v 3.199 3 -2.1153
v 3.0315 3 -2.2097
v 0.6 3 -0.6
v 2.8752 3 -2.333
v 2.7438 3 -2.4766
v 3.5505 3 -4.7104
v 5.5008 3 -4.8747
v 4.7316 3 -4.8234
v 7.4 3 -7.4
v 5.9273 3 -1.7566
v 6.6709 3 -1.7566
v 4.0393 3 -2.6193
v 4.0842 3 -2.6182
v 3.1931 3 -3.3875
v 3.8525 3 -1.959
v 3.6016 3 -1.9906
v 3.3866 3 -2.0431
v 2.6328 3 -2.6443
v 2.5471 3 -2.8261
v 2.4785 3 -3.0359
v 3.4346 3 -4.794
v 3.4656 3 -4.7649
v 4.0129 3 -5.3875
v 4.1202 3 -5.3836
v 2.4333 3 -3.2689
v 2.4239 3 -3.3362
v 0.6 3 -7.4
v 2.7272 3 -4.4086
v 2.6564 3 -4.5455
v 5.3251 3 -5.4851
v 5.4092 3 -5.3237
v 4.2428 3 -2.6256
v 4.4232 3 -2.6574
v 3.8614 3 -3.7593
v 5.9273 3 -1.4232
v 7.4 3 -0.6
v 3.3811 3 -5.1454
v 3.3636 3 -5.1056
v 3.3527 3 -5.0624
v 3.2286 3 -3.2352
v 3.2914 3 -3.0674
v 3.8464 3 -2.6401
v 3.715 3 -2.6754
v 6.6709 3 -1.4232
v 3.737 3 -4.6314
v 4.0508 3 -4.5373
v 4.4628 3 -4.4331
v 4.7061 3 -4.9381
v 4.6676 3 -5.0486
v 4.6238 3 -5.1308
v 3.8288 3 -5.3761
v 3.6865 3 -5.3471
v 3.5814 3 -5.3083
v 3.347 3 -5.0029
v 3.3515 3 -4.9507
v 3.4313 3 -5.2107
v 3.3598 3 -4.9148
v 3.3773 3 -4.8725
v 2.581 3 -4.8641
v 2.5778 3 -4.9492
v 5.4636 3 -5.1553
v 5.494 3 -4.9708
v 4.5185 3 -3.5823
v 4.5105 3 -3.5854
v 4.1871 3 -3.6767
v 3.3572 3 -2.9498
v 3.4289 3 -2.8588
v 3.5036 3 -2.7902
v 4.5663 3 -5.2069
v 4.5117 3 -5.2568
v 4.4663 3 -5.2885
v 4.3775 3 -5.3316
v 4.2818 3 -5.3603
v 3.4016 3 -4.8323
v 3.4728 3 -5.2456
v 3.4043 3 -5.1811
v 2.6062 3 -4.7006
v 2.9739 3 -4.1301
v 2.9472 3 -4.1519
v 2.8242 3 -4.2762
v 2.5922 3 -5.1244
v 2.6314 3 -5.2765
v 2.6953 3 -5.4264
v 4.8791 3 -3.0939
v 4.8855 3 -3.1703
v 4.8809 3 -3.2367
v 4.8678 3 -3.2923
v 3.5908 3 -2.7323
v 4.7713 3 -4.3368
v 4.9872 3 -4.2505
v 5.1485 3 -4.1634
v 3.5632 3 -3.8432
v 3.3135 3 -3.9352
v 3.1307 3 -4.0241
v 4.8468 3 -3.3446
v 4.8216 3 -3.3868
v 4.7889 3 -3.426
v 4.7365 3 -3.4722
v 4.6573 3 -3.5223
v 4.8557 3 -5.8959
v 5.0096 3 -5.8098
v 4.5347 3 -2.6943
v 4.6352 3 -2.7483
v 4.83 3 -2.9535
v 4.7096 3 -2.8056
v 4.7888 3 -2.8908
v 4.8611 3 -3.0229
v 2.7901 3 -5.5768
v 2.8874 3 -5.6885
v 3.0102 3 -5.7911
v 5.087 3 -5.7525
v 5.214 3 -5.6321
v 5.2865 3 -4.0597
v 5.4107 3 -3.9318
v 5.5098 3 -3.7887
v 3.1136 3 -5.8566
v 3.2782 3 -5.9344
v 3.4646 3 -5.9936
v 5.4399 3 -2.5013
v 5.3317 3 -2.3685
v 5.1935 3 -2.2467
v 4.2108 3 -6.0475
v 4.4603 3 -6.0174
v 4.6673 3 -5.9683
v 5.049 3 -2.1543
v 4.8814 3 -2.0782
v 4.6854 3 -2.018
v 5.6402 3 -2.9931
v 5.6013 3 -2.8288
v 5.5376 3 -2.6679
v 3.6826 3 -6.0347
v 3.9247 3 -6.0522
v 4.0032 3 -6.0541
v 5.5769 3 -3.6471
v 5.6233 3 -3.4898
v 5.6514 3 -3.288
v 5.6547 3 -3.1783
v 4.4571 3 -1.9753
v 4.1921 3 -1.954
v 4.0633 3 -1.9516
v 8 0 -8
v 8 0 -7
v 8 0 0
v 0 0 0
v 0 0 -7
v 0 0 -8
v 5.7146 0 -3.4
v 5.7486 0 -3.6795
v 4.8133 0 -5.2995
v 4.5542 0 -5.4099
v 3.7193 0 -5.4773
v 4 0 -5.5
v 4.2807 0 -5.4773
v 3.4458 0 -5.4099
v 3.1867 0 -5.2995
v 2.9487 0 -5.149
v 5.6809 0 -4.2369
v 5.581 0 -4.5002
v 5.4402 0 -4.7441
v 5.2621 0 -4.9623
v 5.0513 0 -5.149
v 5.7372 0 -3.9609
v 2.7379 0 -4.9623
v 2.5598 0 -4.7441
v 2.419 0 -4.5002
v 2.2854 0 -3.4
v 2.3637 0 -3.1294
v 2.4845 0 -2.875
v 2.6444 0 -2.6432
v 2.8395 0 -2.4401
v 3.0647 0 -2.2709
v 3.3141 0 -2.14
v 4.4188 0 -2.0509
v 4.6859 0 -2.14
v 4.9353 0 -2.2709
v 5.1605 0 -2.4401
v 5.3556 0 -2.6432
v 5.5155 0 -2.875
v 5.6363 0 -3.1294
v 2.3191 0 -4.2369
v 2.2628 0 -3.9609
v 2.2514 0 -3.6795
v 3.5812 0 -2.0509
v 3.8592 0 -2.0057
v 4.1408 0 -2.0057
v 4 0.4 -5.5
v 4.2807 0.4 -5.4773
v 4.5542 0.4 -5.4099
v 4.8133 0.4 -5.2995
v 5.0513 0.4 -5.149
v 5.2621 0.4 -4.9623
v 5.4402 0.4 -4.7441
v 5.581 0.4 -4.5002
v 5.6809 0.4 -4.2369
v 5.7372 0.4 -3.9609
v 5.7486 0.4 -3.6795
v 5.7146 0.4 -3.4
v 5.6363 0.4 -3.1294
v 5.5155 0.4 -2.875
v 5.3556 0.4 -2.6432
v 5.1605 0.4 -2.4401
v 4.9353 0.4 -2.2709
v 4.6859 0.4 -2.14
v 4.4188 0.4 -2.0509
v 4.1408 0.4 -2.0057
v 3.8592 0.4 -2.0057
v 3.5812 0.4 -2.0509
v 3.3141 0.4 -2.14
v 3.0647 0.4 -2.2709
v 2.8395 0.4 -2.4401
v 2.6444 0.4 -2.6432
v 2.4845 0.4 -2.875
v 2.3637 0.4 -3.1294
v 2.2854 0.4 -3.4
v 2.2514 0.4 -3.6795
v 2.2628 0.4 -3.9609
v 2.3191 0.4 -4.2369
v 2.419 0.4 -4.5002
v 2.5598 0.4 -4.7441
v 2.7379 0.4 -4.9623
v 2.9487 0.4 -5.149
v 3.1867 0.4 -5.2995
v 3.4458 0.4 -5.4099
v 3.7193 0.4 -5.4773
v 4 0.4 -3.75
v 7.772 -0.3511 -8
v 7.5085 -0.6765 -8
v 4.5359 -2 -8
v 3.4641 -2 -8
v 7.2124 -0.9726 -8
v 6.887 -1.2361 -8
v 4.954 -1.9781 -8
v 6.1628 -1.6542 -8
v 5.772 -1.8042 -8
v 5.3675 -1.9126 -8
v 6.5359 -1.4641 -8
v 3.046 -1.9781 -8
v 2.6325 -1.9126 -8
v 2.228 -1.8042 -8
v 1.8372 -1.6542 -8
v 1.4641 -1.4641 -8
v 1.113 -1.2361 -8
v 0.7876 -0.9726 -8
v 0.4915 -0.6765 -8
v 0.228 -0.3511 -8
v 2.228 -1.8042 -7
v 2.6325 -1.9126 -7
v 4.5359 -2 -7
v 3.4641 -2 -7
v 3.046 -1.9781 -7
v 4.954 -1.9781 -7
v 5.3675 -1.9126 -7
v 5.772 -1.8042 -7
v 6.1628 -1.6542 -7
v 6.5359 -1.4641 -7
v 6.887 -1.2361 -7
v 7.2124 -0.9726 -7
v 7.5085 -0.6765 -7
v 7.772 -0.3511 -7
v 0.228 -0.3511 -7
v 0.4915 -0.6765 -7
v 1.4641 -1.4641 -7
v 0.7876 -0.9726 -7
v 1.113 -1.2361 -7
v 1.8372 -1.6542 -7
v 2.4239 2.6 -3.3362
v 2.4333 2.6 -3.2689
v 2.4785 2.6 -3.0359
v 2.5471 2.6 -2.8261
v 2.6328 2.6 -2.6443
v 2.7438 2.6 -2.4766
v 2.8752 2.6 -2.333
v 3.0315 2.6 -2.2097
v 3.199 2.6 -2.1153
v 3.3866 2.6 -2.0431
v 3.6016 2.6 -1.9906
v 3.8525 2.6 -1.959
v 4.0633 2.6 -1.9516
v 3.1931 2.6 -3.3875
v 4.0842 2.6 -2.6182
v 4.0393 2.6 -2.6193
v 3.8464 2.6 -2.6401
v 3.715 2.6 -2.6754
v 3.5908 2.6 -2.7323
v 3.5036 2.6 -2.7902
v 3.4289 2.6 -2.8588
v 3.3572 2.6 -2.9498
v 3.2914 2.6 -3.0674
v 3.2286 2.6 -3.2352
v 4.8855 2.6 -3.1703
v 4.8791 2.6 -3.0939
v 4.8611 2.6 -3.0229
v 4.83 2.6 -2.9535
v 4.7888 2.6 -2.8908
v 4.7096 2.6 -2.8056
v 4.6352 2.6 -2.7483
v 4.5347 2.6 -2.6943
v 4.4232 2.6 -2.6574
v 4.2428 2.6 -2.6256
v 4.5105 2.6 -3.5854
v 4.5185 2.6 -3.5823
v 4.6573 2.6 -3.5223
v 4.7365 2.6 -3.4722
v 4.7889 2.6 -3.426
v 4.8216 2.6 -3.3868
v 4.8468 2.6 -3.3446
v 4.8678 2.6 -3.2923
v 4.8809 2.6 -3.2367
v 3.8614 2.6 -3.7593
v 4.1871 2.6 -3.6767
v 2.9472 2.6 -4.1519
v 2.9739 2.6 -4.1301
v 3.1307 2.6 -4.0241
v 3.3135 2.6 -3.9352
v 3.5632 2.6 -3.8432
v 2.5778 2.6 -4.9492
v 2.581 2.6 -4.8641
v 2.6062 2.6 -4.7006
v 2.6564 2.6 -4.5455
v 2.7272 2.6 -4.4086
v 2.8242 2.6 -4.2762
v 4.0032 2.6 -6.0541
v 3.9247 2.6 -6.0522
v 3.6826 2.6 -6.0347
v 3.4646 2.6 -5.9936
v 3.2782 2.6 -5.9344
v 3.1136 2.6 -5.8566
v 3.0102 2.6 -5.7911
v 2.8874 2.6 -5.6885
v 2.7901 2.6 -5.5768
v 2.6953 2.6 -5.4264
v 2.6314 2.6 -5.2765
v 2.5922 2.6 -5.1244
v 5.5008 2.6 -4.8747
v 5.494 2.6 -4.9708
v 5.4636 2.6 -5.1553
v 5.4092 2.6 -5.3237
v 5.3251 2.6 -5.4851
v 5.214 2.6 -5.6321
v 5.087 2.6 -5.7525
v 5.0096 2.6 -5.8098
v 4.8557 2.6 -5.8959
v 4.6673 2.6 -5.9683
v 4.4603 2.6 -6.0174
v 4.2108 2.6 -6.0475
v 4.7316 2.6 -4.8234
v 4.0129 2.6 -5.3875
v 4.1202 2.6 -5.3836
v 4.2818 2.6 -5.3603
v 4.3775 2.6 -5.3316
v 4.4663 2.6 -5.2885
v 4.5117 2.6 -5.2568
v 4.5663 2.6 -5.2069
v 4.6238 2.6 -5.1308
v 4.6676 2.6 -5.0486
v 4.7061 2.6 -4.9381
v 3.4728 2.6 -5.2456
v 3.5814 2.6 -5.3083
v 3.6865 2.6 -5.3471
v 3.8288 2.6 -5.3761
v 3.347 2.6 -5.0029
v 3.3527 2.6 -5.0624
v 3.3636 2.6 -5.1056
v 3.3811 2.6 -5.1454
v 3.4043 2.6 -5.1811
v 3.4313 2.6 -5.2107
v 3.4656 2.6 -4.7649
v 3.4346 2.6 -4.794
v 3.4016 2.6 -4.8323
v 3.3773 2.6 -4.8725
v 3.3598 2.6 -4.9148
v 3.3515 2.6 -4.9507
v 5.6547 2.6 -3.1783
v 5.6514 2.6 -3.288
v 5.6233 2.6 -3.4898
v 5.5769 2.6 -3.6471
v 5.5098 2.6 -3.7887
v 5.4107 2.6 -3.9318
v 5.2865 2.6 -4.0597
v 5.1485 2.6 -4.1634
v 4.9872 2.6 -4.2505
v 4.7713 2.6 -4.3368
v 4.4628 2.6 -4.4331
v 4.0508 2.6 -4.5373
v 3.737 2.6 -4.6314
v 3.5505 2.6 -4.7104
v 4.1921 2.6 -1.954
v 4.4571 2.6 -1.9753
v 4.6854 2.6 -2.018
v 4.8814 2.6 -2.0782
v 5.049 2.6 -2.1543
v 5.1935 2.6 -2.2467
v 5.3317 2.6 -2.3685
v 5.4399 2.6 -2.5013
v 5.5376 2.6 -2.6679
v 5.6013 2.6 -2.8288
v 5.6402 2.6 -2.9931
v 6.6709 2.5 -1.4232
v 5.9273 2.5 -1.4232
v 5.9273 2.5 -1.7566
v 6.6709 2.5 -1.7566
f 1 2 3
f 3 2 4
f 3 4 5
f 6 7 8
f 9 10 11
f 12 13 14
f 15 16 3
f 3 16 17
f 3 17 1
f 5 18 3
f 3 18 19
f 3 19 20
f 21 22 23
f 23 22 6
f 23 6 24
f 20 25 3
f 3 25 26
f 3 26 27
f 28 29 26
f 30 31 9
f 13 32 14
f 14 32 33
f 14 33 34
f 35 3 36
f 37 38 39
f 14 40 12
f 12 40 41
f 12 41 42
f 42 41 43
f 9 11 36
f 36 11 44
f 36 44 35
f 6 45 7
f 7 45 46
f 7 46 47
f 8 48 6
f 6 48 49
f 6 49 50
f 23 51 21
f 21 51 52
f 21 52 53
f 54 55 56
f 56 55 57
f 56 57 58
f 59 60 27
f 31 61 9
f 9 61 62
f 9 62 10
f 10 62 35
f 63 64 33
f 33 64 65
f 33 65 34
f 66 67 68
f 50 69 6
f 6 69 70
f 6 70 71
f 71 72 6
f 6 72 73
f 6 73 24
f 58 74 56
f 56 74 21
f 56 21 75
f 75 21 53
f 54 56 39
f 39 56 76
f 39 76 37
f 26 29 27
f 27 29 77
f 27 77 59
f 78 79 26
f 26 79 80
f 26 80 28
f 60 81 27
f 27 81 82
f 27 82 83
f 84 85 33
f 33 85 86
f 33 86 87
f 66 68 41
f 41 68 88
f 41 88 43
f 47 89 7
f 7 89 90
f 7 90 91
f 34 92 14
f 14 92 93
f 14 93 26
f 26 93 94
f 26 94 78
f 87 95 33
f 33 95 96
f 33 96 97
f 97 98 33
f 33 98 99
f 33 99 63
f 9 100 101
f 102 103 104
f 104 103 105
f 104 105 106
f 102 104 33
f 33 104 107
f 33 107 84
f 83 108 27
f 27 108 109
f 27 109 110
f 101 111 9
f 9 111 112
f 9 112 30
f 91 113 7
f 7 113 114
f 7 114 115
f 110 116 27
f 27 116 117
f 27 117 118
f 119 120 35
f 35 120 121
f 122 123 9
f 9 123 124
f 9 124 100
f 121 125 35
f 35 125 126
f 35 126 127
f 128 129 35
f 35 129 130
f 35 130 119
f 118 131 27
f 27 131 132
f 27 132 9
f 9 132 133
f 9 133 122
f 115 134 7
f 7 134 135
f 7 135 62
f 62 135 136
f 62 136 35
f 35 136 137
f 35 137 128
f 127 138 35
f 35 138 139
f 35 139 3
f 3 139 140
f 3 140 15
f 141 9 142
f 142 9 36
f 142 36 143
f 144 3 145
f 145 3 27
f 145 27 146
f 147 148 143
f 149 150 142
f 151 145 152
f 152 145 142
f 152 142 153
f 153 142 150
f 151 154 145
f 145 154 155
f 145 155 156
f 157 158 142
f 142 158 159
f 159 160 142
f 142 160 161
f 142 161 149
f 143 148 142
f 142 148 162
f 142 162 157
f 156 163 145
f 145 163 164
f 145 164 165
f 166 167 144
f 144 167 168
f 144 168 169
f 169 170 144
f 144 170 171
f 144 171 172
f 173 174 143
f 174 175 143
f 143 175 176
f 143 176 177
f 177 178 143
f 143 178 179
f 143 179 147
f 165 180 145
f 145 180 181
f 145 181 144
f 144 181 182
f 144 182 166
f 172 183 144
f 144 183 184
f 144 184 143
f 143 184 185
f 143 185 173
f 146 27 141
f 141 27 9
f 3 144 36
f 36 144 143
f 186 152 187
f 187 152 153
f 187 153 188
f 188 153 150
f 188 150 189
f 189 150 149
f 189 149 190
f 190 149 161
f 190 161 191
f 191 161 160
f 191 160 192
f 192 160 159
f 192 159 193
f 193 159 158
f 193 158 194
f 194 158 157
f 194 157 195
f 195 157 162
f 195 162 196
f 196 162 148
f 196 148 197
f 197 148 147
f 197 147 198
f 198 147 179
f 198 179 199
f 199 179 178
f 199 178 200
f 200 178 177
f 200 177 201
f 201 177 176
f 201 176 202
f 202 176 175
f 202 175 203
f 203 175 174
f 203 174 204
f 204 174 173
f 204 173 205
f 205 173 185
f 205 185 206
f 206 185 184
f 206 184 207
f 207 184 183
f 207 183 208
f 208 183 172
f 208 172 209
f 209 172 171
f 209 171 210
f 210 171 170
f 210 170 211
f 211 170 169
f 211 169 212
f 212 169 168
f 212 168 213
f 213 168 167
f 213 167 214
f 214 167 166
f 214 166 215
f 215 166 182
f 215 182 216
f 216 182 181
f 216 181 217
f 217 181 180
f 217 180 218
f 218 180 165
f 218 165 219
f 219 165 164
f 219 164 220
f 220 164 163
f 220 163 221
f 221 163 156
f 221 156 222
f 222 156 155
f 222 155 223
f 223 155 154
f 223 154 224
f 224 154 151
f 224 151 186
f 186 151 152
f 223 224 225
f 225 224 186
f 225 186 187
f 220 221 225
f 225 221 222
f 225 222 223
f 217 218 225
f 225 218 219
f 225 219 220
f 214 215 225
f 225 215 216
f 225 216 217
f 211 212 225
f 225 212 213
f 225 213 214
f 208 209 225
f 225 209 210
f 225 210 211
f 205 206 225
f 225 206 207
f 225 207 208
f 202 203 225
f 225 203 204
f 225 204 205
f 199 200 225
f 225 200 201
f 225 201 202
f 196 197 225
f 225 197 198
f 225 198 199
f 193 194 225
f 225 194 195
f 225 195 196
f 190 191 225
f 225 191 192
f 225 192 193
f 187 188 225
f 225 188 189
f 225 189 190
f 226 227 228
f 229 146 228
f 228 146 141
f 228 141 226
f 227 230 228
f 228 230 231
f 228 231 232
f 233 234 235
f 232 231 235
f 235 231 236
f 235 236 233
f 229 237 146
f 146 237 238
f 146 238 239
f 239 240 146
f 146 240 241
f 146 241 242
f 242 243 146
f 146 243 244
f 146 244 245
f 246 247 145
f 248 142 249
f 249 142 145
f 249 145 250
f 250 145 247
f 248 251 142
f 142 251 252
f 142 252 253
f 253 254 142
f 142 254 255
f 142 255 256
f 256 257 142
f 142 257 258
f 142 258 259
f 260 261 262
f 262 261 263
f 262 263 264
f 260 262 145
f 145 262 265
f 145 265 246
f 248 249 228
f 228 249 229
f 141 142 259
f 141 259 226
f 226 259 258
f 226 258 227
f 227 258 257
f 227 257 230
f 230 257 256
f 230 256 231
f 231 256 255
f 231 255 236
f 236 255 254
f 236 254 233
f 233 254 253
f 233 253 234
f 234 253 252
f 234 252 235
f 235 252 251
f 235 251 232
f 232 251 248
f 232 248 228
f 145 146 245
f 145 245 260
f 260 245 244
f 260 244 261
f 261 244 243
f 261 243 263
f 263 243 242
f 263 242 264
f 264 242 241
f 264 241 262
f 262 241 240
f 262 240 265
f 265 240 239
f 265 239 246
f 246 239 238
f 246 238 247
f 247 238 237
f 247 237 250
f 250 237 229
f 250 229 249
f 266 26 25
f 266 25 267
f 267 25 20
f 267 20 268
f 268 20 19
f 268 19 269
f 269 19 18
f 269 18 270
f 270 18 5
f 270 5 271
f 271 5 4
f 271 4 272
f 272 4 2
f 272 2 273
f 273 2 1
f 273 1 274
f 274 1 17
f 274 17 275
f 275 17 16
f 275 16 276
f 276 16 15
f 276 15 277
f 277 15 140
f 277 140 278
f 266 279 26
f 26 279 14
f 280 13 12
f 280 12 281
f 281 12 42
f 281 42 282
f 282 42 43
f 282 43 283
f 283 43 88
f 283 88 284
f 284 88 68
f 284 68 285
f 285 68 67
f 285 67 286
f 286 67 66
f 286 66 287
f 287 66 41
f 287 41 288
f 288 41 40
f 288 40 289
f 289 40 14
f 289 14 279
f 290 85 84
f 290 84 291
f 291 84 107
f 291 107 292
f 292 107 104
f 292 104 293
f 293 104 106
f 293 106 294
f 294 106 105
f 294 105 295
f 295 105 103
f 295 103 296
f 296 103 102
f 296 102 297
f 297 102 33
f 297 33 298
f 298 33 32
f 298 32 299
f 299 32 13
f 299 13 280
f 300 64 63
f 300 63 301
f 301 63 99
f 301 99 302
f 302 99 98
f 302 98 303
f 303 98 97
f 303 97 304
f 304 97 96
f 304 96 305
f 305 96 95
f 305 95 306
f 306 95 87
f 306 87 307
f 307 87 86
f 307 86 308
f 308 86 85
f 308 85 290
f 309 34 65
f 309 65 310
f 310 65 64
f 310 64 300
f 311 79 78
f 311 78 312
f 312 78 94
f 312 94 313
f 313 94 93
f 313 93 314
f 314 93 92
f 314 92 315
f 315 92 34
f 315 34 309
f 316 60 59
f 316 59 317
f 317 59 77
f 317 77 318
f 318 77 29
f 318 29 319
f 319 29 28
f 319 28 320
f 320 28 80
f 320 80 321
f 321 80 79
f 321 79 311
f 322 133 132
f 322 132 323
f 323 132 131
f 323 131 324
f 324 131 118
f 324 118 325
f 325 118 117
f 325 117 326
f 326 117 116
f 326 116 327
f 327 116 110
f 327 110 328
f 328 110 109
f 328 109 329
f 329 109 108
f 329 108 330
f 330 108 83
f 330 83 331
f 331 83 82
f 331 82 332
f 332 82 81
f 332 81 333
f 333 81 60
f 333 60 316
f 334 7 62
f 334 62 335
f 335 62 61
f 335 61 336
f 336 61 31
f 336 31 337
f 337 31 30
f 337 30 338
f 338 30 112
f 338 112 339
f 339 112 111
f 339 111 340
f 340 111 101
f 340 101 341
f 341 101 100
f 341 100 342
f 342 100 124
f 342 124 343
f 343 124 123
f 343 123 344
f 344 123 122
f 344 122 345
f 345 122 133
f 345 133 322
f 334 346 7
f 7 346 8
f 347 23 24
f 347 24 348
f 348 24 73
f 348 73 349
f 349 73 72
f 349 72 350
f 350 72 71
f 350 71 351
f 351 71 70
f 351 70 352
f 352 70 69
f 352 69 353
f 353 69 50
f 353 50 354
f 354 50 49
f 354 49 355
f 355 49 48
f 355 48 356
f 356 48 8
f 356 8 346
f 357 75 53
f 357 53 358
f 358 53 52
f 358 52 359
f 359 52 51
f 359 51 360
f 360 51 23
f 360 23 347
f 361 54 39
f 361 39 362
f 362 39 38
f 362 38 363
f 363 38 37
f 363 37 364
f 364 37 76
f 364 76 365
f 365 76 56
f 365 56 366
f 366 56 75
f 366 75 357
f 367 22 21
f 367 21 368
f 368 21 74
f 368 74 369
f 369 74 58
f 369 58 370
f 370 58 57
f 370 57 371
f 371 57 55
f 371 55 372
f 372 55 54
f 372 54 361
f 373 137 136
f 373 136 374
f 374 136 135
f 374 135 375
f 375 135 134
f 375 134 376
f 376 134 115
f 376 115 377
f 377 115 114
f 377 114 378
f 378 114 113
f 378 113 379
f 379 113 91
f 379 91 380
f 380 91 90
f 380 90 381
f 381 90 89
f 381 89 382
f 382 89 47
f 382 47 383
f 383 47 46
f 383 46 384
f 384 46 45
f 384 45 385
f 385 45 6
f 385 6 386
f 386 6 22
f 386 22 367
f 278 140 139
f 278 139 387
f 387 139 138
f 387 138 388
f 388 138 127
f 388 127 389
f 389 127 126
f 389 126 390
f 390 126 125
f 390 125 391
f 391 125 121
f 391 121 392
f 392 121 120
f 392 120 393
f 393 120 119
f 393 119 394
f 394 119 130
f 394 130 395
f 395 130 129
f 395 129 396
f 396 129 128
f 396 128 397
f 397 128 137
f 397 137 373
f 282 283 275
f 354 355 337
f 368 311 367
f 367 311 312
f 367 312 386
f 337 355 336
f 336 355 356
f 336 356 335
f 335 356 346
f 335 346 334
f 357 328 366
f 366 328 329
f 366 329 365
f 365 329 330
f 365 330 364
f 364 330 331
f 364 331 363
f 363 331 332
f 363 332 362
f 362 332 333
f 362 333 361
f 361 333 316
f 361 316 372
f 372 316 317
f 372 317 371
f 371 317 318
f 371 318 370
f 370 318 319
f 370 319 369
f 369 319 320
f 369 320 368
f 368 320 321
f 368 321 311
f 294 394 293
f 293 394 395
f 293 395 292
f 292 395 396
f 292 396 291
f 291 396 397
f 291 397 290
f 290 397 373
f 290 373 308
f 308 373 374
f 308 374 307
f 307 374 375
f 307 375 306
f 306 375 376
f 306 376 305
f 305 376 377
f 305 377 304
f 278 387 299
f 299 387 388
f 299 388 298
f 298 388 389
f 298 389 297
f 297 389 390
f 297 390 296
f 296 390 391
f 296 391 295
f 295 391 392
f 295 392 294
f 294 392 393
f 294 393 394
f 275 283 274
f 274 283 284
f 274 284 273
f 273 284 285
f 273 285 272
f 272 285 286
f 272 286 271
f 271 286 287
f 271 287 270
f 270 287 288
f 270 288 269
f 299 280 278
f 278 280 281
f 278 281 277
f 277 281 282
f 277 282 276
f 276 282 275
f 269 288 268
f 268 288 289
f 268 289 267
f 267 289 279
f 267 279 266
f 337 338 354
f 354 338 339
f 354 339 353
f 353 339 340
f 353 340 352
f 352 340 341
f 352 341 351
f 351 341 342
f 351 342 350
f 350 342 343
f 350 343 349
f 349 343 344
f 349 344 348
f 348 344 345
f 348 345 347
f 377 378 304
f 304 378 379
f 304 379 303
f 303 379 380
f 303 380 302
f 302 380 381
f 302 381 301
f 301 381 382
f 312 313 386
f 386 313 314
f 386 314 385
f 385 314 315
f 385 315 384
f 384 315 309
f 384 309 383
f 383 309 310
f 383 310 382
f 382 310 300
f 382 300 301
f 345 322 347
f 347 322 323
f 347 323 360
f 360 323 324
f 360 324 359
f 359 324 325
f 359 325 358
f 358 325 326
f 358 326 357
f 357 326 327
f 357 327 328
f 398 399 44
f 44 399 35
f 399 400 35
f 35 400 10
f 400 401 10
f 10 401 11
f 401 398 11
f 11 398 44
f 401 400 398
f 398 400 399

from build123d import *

# Parameters (mm, degrees)
SKETCH1_W               = 8
SKETCH1_H               = 8
BOSS_EXTRUDE1_DEPTH     = 3
CUT_EXTRUDE1_DEPTH      = 12.704699911
CUT_EXTRUDE1_DEPTH_BACK = 12.704699911
CUT_EXTRUDE2_DEPTH      = 11
SKETCH4_R               = 1.75
CUT_EXTRUDE3_DEPTH      = 0.4
SKETCH5_W               = 8
SKETCH5_H               = 1
BOSS_EXTRUDE2_DEPTH     = 2
FILLET1_R               = 4
CUT_EXTRUDE4_DEPTH      = 0.4
SKETCH7_W               = 0.743589743
SKETCH7_H               = 0.333333333
CUT_EXTRUDE5_DEPTH      = 0.5


with BuildPart() as part:
    # Sketch1 → Boss-Extrude1 (new body)
    with BuildSketch(Plane(origin=(0, 0, 0), x_dir=(1, 0, 0), z_dir=(0, 1, 0))):
        with Locations((4, 4)):
            Rectangle(SKETCH1_W, SKETCH1_H)
    extrude(amount=BOSS_EXTRUDE1_DEPTH)

    # Sketch2 → Cut-Extrude1 (cut, two sides: drawn at the far end of the back side and taken through both)
    with BuildSketch(Plane.XY.offset(-CUT_EXTRUDE1_DEPTH_BACK)):
        Polygon((0, 0), (0.6, 3), (0, 3), align=None)
        Polygon((8, 0), (7.4, 3), (8, 3), align=None)
    extrude(amount=CUT_EXTRUDE1_DEPTH + CUT_EXTRUDE1_DEPTH_BACK, mode=Mode.SUBTRACT)

    # Sketch3 → Cut-Extrude2 (cut)
    with BuildSketch(Plane(origin=(0, 0, 0), x_dir=(0, 0, -1), z_dir=(1, 0, 0))):
        Polygon((0, 0), (0.6, 3), (0, 3), align=None)
        Polygon((8, 3), (7.4, 3), (8, 0), align=None)
    extrude(amount=CUT_EXTRUDE2_DEPTH, mode=Mode.SUBTRACT)

    # Sketch4 → Cut-Extrude3 (cut)
    with BuildSketch(Plane.XZ):
        with Locations(Location((4, -3.75, 0), (0, 0, 270))):
            Circle(SKETCH4_R)
    extrude(amount=-CUT_EXTRUDE3_DEPTH, mode=Mode.SUBTRACT)

    # Sketch5 → Boss-Extrude2 (add)
    with BuildSketch(Plane.XZ):
        with Locations((4, -7.5)):
            Rectangle(SKETCH5_W, SKETCH5_H)
    extrude(amount=BOSS_EXTRUDE2_DEPTH)

    # Fillet1
    # the kernel refuses this fillet: 4 mm, written as the material it takes off along each edge
    with BuildSketch(Plane(origin=(8, -2, -16.660254038), x_dir=(0, 1, 0), z_dir=(0, 0, 1)), Plane(origin=(0, -2, 1.660254038), x_dir=(0, 1, 0), z_dir=(0, 0, -1))) as fillet1_piece_1:
        with BuildLine():
            CenterArc((4, 3.464101615), FILLET1_R, 180, 60)
            Line((0, 3.464101615), (-0.08, 3.464101615))
            Line((-0.08, 3.464101615), (-0.08, 0))
            Line((-0.08, 0), (0, -0.08))
            ThreePointArc((0, -0.08), (1, -0.08), (1.96, -0.069282032))
            Line((1.96, -0.069282032), (2, 0))
        make_face()
    extrude(amount=18.320508076, mode=Mode.SUBTRACT)

    # Sketch6 → Cut-Extrude4 (cut)
    with BuildSketch(Plane(origin=(0, 3, 0), x_dir=(1, 0, 0), z_dir=(0, 1, 0))):
        with BuildLine():
            Line((2.423916505, 3.336189685), (3.193147274, 3.387471736))
            add(Edge.make_bspline(
                [(3.193147274, 3.387471736), (3.199275518, 3.35528983), (3.211179242, 3.292778523), (3.237627081, 3.203691377), (3.266738832, 3.12063689), (3.30152897, 3.044505684), (3.339615284, 2.973890515), (3.38412658, 2.910803039), (3.431957638, 2.853229033), (3.485476185, 2.803236311), (3.543783948, 2.759451994), (3.607171876, 2.722111271), (3.674953108, 2.6897922), (3.747293374, 2.663178469), (3.824938253, 2.64331119), (3.907211345, 2.629176798), (3.994230643, 2.620125524), (4.053701404, 2.618879435), (4.084172915, 2.618240967)],
                knots=[0, 0, 0, 0, 1.204560339, 2.339781841, 3.415289417, 4.440034832, 5.416475564, 6.362424008, 7.275913008, 8.16578645, 9.05021719, 9.95355393, 10.867835453, 11.809845306, 12.784702352, 13.812224031, 14.87903166, 16, 16, 16, 16], degree=3))
            add(Edge.make_bspline(
                [(4.084172915, 2.618240967), (4.116246108, 2.618590883), (4.178630121, 2.619271489), (4.269031453, 2.627715), (4.353560804, 2.639811238), (4.431471751, 2.6589593), (4.504219207, 2.680373377), (4.569996427, 2.709670116), (4.629867843, 2.743459668), (4.683679212, 2.781802056), (4.730640445, 2.824326515), (4.771724475, 2.86872067), (4.807505951, 2.914025405), (4.835668504, 2.962251146), (4.858460082, 3.011447443), (4.873523718, 3.063081907), (4.883700097, 3.1159689), (4.884867031, 3.152113555), (4.885454967, 3.1703243)],
                knots=[0, 0, 0, 0, 1.417779877, 2.757654889, 4.012140507, 5.189587551, 6.302846416, 7.360586765, 8.365575446, 9.33904572, 10.275781718, 11.161696098, 12.012180333, 12.822428111, 13.625933072, 14.403138519, 15.195454004, 16, 16, 16, 16], degree=3))
            add(Edge.make_bspline(
                [(4.885454967, 3.1703243), (4.884733913, 3.193140887), (4.883323278, 3.237778199), (4.866340641, 3.301592127), (4.840872442, 3.360713887), (4.802526135, 3.41427025), (4.750979261, 3.463212961), (4.685226085, 3.508997669), (4.603431212, 3.550186), (4.542750055, 3.573160928), (4.510454967, 3.585388403)],
                knots=[0, 0, 0, 0, 0.90494901, 1.770400303, 2.607161909, 3.452839393, 4.36912122, 5.420987164, 6.627424851, 8, 8, 8, 8], degree=3))
            add(Edge.make_bspline(
                [(4.510454967, 3.585388403), (4.496597999, 3.590031937), (4.465588357, 3.600423411), (4.4126892, 3.615282239), (4.348970759, 3.633836968), (4.273512264, 3.654927379), (4.186339087, 3.676497317), (4.088424838, 3.703069034), (3.978575834, 3.729510064), (3.901725338, 3.749028827), (3.861416505, 3.759266608)],
                knots=[0, 0, 0, 0, 0.521821638, 1.167752076, 1.961721917, 2.891982557, 3.96540661, 5.168436773, 6.514817513, 8, 8, 8, 8], degree=3))
            add(Edge.make_bspline(
                [(3.861416505, 3.759266608), (3.808922441, 3.772373151), (3.707643728, 3.797660082), (3.563197092, 3.84264374), (3.430159098, 3.887337495), (3.309810688, 3.935832618), (3.200824367, 3.984842463), (3.104963023, 4.037807847), (3.02022624, 4.091978089), (2.970848149, 4.132466251), (2.947153685, 4.151894813)],
                knots=[0, 0, 0, 0, 1.293880989, 2.496331788, 3.617634808, 4.64976062, 5.598842568, 6.473791081, 7.267636666, 8, 8, 8, 8], degree=3))
            add(Edge.make_bspline(
                [(2.947153685, 4.151894813), (2.917769469, 4.179407128), (2.860158996, 4.233347566), (2.784323751, 4.321982057), (2.720601495, 4.415610216), (2.668151102, 4.513540942), (2.627765291, 4.616338017), (2.599140348, 4.723313361), (2.580613245, 4.834746169), (2.578722682, 4.91063455), (2.577762659, 4.949170454)],
                knots=[0, 0, 0, 0, 1.064429417, 2.086912298, 3.078678339, 4.055528992, 5.020032834, 5.993708893, 6.981211098, 8, 8, 8, 8], degree=3))
            add(Edge.make_bspline(
                [(2.577762659, 4.949170454), (2.579632311, 4.999035454), (2.583341142, 5.097952729), (2.617353538, 5.24334762), (2.670335558, 5.383642492), (2.731782138, 5.495041815), (2.790819043, 5.579315825), (2.839844896, 5.639790083), (2.893704531, 5.696388175), (2.953135712, 5.747729494), (3.015931612, 5.796821395), (3.084525186, 5.840415592), (3.156971597, 5.881478913), (3.261809808, 5.93015757), (3.404151332, 5.980885512), (3.589345301, 6.023645948), (3.790984862, 6.049350493), (3.930782191, 6.052503897), (4.003243428, 6.054138403)],
                knots=[0, 0, 0, 0, 1.180131776, 2.341029169, 3.518901375, 4.725685298, 5.343762192, 5.955650671, 6.568945152, 7.192346361, 7.815201106, 8.455999361, 9.116257477, 9.787318263, 11.192748436, 12.688084276, 14.283332633, 16, 16, 16, 16], degree=3))
            add(Edge.make_bspline(
                [(4.003243428, 6.054138403), (4.062574751, 6.053344994), (4.177972905, 6.051801831), (4.345255933, 6.036197125), (4.501507358, 6.011910245), (4.646178875, 5.977046542), (4.779337891, 5.930982439), (4.901500568, 5.876111383), (5.012563098, 5.81096567), (5.111173405, 5.735171454), (5.199025737, 5.651613191), (5.275662846, 5.560343317), (5.341377732, 5.462514514), (5.396594511, 5.358198276), (5.439956101, 5.246858263), (5.471803478, 5.128633406), (5.492867609, 5.003801978), (5.498147397, 4.918266237), (5.500839582, 4.874651223)],
                knots=[0, 0, 0, 0, 1.325124071, 2.577337985, 3.749592149, 4.855247722, 5.896868755, 6.892903601, 7.842551483, 8.766257401, 9.665194363, 10.546067736, 11.423174165, 12.293291263, 13.177512979, 14.086532529, 15.024315359, 16, 16, 16, 16], degree=3))
            Line((5.500839582, 4.874651223), (4.731608813, 4.823369172))
            add(Edge.make_bspline(
                [(4.731608813, 4.823369172), (4.727171315, 4.847490186), (4.718523093, 4.894499533), (4.699719489, 4.96182647), (4.678509937, 5.024096207), (4.653685255, 5.081308344), (4.623700039, 5.13243816), (4.591067506, 5.179094223), (4.554887475, 5.220654869), (4.51396201, 5.255982033), (4.469697485, 5.288128305), (4.419251527, 5.313894286), (4.364737876, 5.337799444), (4.30408262, 5.355770261), (4.238450559, 5.370025359), (4.167803464, 5.380593162), (4.091994892, 5.385752959), (4.039841388, 5.386885694), (4.012858813, 5.387471736)],
                knots=[0, 0, 0, 0, 1.151066407, 2.24330871, 3.278475654, 4.238599069, 5.165719782, 6.056502506, 6.909492653, 7.744782051, 8.590364415, 9.471203867, 10.39832458, 11.382154319, 12.435022857, 13.550631277, 14.73277401, 16, 16, 16, 16], degree=3))
            add(Edge.make_bspline(
                [(4.012858813, 5.387471736), (3.984804304, 5.386954358), (3.930223002, 5.385947775), (3.850683499, 5.379770524), (3.776069477, 5.368367912), (3.706014485, 5.353524542), (3.640612102, 5.333331162), (3.580000346, 5.308708643), (3.523901913, 5.279720359), (3.489695535, 5.256913378), (3.47279471, 5.245644813)],
                knots=[0, 0, 0, 0, 1.186678824, 2.308736671, 3.37120409, 4.377216403, 5.334874112, 6.262130804, 7.141346615, 8, 8, 8, 8], degree=3))
            add(Edge.make_bspline(
                [(3.47279471, 5.245644813), (3.453453136, 5.230251633), (3.415994509, 5.200439822), (3.3756811, 5.141243702), (3.351412335, 5.074383458), (3.348491314, 5.027102037), (3.346993428, 5.002856352)],
                knots=[0, 0, 0, 0, 1.037857257, 2.010007357, 2.979541333, 4, 4, 4, 4], degree=3))
            add(Edge.make_bspline(
                [(3.346993428, 5.002856352), (3.348218426, 4.980197149), (3.350631475, 4.935562125), (3.374970191, 4.872157107), (3.41239982, 4.813407798), (3.447371668, 4.781494404), (3.465583172, 4.764875582)],
                knots=[0, 0, 0, 0, 0.98538058, 1.941042925, 2.927803204, 4, 4, 4, 4], degree=3))
            add(Edge.make_bspline(
                [(3.465583172, 4.764875582), (3.480036346, 4.754089134), (3.512333176, 4.72998591), (3.571494566, 4.699348433), (3.642903916, 4.666166195), (3.728189187, 4.633726893), (3.826783574, 4.601347807), (3.938693075, 4.567540299), (4.063986517, 4.533278892), (4.199470233, 4.500098399), (4.337024364, 4.467483879), (4.46828848, 4.431827004), (4.590345232, 4.397064309), (4.702628677, 4.360627363), (4.805717615, 4.325156109), (4.899111277, 4.288724577), (4.98345094, 4.253244341), (5.081800337, 4.204456503), (5.193269487, 4.138371404), (5.310101731, 4.042305693), (5.413424942, 3.934321559), (5.485417809, 3.83249997), (5.534873142, 3.744930694), (5.566717158, 3.675127784), (5.59426473, 3.601573118), (5.616688379, 3.524185412), (5.632940128, 3.442855773), (5.646389397, 3.358205559), (5.653260877, 3.269531733), (5.654205671, 3.209062493), (5.654685736, 3.178337121)],
                knots=[0, 0, 0, 0, 0.511875881, 1.143829537, 1.88775736, 2.750598373, 3.734912702, 4.837306479, 6.073130119, 7.42648979, 8.801963576, 10.091065733, 11.292408984, 12.408830014, 13.446061236, 14.39066453, 15.257936293, 16.045629259, 17.510392066, 18.929669597, 20.331293837, 21.746891395, 22.460690638, 23.187651344, 23.925159671, 24.69163991, 25.474819891, 26.281170188, 27.126635539, 28, 28, 28, 28], degree=3))
            add(Edge.make_bspline(
                [(5.654685736, 3.178337121), (5.654025632, 3.150001459), (5.652714728, 3.093729578), (5.643553782, 3.010207902), (5.629386607, 2.928169417), (5.608414322, 2.847511277), (5.580592445, 2.768392154), (5.549267222, 2.689670139), (5.510096795, 2.613061996), (5.465515506, 2.538504273), (5.41634032, 2.466052922), (5.360615699, 2.3992182), (5.301614691, 2.335770341), (5.235567289, 2.279262071), (5.166552067, 2.225117883), (5.091412341, 2.177166881), (5.011908526, 2.133775469), (4.927537931, 2.095267608), (4.838001417, 2.061711489), (4.743415274, 2.031844209), (4.642927337, 2.007400135), (4.537375532, 1.986448484), (4.426373586, 1.970515295), (4.310060277, 1.959390224), (4.188409162, 1.953116354), (4.105547428, 1.952094705), (4.063339582, 1.9515743)],
                knots=[0, 0, 0, 0, 0.900570041, 1.788444861, 2.667795364, 3.545012114, 4.433698372, 5.332345486, 6.235991676, 7.164928091, 8.092777575, 9.015680987, 9.928493428, 10.842962589, 11.775229507, 12.714851019, 13.672254427, 14.652424454, 15.660007982, 16.709910502, 17.803296389, 18.945495772, 20.129342395, 21.366102753, 22.658353839, 24, 24, 24, 24], degree=3))
            add(Edge.make_bspline(
                [(4.063339582, 1.9515743), (4.002397965, 1.952569276), (3.883743193, 1.954506517), (3.711359118, 1.971846347), (3.549674268, 1.998386209), (3.398951853, 2.0369045), (3.259007654, 2.086353292), (3.129905498, 2.147263285), (3.012269836, 2.219998383), (2.90464369, 2.302794639), (2.808461007, 2.397160809), (2.721973345, 2.501141662), (2.646347447, 2.615673526), (2.58163302, 2.740577261), (2.526193974, 2.875177636), (2.480472858, 3.01953646), (2.446047261, 3.174342245), (2.431421007, 3.281307488), (2.423916505, 3.336189685)],
                knots=[0, 0, 0, 0, 1.217954099, 2.371385517, 3.459848295, 4.490682126, 5.476952527, 6.422732854, 7.338496285, 8.236688651, 9.131557988, 10.026443255, 10.935708282, 11.869506048, 12.834296687, 13.842423496, 14.892981177, 16, 16, 16, 16], degree=3))
        make_face()
    extrude(amount=-CUT_EXTRUDE4_DEPTH, mode=Mode.SUBTRACT)

    # Sketch7 → Cut-Extrude5 (cut)
    with BuildSketch(Plane(origin=(0, 3, 0), x_dir=(1, 0, 0), z_dir=(0, 1, 0))):
        with Locations((6.299141853, 1.589907949)):
            Rectangle(SKETCH7_W, SKETCH7_H)
    extrude(amount=-CUT_EXTRUDE5_DEPTH, mode=Mode.SUBTRACT)


solid = part.part
